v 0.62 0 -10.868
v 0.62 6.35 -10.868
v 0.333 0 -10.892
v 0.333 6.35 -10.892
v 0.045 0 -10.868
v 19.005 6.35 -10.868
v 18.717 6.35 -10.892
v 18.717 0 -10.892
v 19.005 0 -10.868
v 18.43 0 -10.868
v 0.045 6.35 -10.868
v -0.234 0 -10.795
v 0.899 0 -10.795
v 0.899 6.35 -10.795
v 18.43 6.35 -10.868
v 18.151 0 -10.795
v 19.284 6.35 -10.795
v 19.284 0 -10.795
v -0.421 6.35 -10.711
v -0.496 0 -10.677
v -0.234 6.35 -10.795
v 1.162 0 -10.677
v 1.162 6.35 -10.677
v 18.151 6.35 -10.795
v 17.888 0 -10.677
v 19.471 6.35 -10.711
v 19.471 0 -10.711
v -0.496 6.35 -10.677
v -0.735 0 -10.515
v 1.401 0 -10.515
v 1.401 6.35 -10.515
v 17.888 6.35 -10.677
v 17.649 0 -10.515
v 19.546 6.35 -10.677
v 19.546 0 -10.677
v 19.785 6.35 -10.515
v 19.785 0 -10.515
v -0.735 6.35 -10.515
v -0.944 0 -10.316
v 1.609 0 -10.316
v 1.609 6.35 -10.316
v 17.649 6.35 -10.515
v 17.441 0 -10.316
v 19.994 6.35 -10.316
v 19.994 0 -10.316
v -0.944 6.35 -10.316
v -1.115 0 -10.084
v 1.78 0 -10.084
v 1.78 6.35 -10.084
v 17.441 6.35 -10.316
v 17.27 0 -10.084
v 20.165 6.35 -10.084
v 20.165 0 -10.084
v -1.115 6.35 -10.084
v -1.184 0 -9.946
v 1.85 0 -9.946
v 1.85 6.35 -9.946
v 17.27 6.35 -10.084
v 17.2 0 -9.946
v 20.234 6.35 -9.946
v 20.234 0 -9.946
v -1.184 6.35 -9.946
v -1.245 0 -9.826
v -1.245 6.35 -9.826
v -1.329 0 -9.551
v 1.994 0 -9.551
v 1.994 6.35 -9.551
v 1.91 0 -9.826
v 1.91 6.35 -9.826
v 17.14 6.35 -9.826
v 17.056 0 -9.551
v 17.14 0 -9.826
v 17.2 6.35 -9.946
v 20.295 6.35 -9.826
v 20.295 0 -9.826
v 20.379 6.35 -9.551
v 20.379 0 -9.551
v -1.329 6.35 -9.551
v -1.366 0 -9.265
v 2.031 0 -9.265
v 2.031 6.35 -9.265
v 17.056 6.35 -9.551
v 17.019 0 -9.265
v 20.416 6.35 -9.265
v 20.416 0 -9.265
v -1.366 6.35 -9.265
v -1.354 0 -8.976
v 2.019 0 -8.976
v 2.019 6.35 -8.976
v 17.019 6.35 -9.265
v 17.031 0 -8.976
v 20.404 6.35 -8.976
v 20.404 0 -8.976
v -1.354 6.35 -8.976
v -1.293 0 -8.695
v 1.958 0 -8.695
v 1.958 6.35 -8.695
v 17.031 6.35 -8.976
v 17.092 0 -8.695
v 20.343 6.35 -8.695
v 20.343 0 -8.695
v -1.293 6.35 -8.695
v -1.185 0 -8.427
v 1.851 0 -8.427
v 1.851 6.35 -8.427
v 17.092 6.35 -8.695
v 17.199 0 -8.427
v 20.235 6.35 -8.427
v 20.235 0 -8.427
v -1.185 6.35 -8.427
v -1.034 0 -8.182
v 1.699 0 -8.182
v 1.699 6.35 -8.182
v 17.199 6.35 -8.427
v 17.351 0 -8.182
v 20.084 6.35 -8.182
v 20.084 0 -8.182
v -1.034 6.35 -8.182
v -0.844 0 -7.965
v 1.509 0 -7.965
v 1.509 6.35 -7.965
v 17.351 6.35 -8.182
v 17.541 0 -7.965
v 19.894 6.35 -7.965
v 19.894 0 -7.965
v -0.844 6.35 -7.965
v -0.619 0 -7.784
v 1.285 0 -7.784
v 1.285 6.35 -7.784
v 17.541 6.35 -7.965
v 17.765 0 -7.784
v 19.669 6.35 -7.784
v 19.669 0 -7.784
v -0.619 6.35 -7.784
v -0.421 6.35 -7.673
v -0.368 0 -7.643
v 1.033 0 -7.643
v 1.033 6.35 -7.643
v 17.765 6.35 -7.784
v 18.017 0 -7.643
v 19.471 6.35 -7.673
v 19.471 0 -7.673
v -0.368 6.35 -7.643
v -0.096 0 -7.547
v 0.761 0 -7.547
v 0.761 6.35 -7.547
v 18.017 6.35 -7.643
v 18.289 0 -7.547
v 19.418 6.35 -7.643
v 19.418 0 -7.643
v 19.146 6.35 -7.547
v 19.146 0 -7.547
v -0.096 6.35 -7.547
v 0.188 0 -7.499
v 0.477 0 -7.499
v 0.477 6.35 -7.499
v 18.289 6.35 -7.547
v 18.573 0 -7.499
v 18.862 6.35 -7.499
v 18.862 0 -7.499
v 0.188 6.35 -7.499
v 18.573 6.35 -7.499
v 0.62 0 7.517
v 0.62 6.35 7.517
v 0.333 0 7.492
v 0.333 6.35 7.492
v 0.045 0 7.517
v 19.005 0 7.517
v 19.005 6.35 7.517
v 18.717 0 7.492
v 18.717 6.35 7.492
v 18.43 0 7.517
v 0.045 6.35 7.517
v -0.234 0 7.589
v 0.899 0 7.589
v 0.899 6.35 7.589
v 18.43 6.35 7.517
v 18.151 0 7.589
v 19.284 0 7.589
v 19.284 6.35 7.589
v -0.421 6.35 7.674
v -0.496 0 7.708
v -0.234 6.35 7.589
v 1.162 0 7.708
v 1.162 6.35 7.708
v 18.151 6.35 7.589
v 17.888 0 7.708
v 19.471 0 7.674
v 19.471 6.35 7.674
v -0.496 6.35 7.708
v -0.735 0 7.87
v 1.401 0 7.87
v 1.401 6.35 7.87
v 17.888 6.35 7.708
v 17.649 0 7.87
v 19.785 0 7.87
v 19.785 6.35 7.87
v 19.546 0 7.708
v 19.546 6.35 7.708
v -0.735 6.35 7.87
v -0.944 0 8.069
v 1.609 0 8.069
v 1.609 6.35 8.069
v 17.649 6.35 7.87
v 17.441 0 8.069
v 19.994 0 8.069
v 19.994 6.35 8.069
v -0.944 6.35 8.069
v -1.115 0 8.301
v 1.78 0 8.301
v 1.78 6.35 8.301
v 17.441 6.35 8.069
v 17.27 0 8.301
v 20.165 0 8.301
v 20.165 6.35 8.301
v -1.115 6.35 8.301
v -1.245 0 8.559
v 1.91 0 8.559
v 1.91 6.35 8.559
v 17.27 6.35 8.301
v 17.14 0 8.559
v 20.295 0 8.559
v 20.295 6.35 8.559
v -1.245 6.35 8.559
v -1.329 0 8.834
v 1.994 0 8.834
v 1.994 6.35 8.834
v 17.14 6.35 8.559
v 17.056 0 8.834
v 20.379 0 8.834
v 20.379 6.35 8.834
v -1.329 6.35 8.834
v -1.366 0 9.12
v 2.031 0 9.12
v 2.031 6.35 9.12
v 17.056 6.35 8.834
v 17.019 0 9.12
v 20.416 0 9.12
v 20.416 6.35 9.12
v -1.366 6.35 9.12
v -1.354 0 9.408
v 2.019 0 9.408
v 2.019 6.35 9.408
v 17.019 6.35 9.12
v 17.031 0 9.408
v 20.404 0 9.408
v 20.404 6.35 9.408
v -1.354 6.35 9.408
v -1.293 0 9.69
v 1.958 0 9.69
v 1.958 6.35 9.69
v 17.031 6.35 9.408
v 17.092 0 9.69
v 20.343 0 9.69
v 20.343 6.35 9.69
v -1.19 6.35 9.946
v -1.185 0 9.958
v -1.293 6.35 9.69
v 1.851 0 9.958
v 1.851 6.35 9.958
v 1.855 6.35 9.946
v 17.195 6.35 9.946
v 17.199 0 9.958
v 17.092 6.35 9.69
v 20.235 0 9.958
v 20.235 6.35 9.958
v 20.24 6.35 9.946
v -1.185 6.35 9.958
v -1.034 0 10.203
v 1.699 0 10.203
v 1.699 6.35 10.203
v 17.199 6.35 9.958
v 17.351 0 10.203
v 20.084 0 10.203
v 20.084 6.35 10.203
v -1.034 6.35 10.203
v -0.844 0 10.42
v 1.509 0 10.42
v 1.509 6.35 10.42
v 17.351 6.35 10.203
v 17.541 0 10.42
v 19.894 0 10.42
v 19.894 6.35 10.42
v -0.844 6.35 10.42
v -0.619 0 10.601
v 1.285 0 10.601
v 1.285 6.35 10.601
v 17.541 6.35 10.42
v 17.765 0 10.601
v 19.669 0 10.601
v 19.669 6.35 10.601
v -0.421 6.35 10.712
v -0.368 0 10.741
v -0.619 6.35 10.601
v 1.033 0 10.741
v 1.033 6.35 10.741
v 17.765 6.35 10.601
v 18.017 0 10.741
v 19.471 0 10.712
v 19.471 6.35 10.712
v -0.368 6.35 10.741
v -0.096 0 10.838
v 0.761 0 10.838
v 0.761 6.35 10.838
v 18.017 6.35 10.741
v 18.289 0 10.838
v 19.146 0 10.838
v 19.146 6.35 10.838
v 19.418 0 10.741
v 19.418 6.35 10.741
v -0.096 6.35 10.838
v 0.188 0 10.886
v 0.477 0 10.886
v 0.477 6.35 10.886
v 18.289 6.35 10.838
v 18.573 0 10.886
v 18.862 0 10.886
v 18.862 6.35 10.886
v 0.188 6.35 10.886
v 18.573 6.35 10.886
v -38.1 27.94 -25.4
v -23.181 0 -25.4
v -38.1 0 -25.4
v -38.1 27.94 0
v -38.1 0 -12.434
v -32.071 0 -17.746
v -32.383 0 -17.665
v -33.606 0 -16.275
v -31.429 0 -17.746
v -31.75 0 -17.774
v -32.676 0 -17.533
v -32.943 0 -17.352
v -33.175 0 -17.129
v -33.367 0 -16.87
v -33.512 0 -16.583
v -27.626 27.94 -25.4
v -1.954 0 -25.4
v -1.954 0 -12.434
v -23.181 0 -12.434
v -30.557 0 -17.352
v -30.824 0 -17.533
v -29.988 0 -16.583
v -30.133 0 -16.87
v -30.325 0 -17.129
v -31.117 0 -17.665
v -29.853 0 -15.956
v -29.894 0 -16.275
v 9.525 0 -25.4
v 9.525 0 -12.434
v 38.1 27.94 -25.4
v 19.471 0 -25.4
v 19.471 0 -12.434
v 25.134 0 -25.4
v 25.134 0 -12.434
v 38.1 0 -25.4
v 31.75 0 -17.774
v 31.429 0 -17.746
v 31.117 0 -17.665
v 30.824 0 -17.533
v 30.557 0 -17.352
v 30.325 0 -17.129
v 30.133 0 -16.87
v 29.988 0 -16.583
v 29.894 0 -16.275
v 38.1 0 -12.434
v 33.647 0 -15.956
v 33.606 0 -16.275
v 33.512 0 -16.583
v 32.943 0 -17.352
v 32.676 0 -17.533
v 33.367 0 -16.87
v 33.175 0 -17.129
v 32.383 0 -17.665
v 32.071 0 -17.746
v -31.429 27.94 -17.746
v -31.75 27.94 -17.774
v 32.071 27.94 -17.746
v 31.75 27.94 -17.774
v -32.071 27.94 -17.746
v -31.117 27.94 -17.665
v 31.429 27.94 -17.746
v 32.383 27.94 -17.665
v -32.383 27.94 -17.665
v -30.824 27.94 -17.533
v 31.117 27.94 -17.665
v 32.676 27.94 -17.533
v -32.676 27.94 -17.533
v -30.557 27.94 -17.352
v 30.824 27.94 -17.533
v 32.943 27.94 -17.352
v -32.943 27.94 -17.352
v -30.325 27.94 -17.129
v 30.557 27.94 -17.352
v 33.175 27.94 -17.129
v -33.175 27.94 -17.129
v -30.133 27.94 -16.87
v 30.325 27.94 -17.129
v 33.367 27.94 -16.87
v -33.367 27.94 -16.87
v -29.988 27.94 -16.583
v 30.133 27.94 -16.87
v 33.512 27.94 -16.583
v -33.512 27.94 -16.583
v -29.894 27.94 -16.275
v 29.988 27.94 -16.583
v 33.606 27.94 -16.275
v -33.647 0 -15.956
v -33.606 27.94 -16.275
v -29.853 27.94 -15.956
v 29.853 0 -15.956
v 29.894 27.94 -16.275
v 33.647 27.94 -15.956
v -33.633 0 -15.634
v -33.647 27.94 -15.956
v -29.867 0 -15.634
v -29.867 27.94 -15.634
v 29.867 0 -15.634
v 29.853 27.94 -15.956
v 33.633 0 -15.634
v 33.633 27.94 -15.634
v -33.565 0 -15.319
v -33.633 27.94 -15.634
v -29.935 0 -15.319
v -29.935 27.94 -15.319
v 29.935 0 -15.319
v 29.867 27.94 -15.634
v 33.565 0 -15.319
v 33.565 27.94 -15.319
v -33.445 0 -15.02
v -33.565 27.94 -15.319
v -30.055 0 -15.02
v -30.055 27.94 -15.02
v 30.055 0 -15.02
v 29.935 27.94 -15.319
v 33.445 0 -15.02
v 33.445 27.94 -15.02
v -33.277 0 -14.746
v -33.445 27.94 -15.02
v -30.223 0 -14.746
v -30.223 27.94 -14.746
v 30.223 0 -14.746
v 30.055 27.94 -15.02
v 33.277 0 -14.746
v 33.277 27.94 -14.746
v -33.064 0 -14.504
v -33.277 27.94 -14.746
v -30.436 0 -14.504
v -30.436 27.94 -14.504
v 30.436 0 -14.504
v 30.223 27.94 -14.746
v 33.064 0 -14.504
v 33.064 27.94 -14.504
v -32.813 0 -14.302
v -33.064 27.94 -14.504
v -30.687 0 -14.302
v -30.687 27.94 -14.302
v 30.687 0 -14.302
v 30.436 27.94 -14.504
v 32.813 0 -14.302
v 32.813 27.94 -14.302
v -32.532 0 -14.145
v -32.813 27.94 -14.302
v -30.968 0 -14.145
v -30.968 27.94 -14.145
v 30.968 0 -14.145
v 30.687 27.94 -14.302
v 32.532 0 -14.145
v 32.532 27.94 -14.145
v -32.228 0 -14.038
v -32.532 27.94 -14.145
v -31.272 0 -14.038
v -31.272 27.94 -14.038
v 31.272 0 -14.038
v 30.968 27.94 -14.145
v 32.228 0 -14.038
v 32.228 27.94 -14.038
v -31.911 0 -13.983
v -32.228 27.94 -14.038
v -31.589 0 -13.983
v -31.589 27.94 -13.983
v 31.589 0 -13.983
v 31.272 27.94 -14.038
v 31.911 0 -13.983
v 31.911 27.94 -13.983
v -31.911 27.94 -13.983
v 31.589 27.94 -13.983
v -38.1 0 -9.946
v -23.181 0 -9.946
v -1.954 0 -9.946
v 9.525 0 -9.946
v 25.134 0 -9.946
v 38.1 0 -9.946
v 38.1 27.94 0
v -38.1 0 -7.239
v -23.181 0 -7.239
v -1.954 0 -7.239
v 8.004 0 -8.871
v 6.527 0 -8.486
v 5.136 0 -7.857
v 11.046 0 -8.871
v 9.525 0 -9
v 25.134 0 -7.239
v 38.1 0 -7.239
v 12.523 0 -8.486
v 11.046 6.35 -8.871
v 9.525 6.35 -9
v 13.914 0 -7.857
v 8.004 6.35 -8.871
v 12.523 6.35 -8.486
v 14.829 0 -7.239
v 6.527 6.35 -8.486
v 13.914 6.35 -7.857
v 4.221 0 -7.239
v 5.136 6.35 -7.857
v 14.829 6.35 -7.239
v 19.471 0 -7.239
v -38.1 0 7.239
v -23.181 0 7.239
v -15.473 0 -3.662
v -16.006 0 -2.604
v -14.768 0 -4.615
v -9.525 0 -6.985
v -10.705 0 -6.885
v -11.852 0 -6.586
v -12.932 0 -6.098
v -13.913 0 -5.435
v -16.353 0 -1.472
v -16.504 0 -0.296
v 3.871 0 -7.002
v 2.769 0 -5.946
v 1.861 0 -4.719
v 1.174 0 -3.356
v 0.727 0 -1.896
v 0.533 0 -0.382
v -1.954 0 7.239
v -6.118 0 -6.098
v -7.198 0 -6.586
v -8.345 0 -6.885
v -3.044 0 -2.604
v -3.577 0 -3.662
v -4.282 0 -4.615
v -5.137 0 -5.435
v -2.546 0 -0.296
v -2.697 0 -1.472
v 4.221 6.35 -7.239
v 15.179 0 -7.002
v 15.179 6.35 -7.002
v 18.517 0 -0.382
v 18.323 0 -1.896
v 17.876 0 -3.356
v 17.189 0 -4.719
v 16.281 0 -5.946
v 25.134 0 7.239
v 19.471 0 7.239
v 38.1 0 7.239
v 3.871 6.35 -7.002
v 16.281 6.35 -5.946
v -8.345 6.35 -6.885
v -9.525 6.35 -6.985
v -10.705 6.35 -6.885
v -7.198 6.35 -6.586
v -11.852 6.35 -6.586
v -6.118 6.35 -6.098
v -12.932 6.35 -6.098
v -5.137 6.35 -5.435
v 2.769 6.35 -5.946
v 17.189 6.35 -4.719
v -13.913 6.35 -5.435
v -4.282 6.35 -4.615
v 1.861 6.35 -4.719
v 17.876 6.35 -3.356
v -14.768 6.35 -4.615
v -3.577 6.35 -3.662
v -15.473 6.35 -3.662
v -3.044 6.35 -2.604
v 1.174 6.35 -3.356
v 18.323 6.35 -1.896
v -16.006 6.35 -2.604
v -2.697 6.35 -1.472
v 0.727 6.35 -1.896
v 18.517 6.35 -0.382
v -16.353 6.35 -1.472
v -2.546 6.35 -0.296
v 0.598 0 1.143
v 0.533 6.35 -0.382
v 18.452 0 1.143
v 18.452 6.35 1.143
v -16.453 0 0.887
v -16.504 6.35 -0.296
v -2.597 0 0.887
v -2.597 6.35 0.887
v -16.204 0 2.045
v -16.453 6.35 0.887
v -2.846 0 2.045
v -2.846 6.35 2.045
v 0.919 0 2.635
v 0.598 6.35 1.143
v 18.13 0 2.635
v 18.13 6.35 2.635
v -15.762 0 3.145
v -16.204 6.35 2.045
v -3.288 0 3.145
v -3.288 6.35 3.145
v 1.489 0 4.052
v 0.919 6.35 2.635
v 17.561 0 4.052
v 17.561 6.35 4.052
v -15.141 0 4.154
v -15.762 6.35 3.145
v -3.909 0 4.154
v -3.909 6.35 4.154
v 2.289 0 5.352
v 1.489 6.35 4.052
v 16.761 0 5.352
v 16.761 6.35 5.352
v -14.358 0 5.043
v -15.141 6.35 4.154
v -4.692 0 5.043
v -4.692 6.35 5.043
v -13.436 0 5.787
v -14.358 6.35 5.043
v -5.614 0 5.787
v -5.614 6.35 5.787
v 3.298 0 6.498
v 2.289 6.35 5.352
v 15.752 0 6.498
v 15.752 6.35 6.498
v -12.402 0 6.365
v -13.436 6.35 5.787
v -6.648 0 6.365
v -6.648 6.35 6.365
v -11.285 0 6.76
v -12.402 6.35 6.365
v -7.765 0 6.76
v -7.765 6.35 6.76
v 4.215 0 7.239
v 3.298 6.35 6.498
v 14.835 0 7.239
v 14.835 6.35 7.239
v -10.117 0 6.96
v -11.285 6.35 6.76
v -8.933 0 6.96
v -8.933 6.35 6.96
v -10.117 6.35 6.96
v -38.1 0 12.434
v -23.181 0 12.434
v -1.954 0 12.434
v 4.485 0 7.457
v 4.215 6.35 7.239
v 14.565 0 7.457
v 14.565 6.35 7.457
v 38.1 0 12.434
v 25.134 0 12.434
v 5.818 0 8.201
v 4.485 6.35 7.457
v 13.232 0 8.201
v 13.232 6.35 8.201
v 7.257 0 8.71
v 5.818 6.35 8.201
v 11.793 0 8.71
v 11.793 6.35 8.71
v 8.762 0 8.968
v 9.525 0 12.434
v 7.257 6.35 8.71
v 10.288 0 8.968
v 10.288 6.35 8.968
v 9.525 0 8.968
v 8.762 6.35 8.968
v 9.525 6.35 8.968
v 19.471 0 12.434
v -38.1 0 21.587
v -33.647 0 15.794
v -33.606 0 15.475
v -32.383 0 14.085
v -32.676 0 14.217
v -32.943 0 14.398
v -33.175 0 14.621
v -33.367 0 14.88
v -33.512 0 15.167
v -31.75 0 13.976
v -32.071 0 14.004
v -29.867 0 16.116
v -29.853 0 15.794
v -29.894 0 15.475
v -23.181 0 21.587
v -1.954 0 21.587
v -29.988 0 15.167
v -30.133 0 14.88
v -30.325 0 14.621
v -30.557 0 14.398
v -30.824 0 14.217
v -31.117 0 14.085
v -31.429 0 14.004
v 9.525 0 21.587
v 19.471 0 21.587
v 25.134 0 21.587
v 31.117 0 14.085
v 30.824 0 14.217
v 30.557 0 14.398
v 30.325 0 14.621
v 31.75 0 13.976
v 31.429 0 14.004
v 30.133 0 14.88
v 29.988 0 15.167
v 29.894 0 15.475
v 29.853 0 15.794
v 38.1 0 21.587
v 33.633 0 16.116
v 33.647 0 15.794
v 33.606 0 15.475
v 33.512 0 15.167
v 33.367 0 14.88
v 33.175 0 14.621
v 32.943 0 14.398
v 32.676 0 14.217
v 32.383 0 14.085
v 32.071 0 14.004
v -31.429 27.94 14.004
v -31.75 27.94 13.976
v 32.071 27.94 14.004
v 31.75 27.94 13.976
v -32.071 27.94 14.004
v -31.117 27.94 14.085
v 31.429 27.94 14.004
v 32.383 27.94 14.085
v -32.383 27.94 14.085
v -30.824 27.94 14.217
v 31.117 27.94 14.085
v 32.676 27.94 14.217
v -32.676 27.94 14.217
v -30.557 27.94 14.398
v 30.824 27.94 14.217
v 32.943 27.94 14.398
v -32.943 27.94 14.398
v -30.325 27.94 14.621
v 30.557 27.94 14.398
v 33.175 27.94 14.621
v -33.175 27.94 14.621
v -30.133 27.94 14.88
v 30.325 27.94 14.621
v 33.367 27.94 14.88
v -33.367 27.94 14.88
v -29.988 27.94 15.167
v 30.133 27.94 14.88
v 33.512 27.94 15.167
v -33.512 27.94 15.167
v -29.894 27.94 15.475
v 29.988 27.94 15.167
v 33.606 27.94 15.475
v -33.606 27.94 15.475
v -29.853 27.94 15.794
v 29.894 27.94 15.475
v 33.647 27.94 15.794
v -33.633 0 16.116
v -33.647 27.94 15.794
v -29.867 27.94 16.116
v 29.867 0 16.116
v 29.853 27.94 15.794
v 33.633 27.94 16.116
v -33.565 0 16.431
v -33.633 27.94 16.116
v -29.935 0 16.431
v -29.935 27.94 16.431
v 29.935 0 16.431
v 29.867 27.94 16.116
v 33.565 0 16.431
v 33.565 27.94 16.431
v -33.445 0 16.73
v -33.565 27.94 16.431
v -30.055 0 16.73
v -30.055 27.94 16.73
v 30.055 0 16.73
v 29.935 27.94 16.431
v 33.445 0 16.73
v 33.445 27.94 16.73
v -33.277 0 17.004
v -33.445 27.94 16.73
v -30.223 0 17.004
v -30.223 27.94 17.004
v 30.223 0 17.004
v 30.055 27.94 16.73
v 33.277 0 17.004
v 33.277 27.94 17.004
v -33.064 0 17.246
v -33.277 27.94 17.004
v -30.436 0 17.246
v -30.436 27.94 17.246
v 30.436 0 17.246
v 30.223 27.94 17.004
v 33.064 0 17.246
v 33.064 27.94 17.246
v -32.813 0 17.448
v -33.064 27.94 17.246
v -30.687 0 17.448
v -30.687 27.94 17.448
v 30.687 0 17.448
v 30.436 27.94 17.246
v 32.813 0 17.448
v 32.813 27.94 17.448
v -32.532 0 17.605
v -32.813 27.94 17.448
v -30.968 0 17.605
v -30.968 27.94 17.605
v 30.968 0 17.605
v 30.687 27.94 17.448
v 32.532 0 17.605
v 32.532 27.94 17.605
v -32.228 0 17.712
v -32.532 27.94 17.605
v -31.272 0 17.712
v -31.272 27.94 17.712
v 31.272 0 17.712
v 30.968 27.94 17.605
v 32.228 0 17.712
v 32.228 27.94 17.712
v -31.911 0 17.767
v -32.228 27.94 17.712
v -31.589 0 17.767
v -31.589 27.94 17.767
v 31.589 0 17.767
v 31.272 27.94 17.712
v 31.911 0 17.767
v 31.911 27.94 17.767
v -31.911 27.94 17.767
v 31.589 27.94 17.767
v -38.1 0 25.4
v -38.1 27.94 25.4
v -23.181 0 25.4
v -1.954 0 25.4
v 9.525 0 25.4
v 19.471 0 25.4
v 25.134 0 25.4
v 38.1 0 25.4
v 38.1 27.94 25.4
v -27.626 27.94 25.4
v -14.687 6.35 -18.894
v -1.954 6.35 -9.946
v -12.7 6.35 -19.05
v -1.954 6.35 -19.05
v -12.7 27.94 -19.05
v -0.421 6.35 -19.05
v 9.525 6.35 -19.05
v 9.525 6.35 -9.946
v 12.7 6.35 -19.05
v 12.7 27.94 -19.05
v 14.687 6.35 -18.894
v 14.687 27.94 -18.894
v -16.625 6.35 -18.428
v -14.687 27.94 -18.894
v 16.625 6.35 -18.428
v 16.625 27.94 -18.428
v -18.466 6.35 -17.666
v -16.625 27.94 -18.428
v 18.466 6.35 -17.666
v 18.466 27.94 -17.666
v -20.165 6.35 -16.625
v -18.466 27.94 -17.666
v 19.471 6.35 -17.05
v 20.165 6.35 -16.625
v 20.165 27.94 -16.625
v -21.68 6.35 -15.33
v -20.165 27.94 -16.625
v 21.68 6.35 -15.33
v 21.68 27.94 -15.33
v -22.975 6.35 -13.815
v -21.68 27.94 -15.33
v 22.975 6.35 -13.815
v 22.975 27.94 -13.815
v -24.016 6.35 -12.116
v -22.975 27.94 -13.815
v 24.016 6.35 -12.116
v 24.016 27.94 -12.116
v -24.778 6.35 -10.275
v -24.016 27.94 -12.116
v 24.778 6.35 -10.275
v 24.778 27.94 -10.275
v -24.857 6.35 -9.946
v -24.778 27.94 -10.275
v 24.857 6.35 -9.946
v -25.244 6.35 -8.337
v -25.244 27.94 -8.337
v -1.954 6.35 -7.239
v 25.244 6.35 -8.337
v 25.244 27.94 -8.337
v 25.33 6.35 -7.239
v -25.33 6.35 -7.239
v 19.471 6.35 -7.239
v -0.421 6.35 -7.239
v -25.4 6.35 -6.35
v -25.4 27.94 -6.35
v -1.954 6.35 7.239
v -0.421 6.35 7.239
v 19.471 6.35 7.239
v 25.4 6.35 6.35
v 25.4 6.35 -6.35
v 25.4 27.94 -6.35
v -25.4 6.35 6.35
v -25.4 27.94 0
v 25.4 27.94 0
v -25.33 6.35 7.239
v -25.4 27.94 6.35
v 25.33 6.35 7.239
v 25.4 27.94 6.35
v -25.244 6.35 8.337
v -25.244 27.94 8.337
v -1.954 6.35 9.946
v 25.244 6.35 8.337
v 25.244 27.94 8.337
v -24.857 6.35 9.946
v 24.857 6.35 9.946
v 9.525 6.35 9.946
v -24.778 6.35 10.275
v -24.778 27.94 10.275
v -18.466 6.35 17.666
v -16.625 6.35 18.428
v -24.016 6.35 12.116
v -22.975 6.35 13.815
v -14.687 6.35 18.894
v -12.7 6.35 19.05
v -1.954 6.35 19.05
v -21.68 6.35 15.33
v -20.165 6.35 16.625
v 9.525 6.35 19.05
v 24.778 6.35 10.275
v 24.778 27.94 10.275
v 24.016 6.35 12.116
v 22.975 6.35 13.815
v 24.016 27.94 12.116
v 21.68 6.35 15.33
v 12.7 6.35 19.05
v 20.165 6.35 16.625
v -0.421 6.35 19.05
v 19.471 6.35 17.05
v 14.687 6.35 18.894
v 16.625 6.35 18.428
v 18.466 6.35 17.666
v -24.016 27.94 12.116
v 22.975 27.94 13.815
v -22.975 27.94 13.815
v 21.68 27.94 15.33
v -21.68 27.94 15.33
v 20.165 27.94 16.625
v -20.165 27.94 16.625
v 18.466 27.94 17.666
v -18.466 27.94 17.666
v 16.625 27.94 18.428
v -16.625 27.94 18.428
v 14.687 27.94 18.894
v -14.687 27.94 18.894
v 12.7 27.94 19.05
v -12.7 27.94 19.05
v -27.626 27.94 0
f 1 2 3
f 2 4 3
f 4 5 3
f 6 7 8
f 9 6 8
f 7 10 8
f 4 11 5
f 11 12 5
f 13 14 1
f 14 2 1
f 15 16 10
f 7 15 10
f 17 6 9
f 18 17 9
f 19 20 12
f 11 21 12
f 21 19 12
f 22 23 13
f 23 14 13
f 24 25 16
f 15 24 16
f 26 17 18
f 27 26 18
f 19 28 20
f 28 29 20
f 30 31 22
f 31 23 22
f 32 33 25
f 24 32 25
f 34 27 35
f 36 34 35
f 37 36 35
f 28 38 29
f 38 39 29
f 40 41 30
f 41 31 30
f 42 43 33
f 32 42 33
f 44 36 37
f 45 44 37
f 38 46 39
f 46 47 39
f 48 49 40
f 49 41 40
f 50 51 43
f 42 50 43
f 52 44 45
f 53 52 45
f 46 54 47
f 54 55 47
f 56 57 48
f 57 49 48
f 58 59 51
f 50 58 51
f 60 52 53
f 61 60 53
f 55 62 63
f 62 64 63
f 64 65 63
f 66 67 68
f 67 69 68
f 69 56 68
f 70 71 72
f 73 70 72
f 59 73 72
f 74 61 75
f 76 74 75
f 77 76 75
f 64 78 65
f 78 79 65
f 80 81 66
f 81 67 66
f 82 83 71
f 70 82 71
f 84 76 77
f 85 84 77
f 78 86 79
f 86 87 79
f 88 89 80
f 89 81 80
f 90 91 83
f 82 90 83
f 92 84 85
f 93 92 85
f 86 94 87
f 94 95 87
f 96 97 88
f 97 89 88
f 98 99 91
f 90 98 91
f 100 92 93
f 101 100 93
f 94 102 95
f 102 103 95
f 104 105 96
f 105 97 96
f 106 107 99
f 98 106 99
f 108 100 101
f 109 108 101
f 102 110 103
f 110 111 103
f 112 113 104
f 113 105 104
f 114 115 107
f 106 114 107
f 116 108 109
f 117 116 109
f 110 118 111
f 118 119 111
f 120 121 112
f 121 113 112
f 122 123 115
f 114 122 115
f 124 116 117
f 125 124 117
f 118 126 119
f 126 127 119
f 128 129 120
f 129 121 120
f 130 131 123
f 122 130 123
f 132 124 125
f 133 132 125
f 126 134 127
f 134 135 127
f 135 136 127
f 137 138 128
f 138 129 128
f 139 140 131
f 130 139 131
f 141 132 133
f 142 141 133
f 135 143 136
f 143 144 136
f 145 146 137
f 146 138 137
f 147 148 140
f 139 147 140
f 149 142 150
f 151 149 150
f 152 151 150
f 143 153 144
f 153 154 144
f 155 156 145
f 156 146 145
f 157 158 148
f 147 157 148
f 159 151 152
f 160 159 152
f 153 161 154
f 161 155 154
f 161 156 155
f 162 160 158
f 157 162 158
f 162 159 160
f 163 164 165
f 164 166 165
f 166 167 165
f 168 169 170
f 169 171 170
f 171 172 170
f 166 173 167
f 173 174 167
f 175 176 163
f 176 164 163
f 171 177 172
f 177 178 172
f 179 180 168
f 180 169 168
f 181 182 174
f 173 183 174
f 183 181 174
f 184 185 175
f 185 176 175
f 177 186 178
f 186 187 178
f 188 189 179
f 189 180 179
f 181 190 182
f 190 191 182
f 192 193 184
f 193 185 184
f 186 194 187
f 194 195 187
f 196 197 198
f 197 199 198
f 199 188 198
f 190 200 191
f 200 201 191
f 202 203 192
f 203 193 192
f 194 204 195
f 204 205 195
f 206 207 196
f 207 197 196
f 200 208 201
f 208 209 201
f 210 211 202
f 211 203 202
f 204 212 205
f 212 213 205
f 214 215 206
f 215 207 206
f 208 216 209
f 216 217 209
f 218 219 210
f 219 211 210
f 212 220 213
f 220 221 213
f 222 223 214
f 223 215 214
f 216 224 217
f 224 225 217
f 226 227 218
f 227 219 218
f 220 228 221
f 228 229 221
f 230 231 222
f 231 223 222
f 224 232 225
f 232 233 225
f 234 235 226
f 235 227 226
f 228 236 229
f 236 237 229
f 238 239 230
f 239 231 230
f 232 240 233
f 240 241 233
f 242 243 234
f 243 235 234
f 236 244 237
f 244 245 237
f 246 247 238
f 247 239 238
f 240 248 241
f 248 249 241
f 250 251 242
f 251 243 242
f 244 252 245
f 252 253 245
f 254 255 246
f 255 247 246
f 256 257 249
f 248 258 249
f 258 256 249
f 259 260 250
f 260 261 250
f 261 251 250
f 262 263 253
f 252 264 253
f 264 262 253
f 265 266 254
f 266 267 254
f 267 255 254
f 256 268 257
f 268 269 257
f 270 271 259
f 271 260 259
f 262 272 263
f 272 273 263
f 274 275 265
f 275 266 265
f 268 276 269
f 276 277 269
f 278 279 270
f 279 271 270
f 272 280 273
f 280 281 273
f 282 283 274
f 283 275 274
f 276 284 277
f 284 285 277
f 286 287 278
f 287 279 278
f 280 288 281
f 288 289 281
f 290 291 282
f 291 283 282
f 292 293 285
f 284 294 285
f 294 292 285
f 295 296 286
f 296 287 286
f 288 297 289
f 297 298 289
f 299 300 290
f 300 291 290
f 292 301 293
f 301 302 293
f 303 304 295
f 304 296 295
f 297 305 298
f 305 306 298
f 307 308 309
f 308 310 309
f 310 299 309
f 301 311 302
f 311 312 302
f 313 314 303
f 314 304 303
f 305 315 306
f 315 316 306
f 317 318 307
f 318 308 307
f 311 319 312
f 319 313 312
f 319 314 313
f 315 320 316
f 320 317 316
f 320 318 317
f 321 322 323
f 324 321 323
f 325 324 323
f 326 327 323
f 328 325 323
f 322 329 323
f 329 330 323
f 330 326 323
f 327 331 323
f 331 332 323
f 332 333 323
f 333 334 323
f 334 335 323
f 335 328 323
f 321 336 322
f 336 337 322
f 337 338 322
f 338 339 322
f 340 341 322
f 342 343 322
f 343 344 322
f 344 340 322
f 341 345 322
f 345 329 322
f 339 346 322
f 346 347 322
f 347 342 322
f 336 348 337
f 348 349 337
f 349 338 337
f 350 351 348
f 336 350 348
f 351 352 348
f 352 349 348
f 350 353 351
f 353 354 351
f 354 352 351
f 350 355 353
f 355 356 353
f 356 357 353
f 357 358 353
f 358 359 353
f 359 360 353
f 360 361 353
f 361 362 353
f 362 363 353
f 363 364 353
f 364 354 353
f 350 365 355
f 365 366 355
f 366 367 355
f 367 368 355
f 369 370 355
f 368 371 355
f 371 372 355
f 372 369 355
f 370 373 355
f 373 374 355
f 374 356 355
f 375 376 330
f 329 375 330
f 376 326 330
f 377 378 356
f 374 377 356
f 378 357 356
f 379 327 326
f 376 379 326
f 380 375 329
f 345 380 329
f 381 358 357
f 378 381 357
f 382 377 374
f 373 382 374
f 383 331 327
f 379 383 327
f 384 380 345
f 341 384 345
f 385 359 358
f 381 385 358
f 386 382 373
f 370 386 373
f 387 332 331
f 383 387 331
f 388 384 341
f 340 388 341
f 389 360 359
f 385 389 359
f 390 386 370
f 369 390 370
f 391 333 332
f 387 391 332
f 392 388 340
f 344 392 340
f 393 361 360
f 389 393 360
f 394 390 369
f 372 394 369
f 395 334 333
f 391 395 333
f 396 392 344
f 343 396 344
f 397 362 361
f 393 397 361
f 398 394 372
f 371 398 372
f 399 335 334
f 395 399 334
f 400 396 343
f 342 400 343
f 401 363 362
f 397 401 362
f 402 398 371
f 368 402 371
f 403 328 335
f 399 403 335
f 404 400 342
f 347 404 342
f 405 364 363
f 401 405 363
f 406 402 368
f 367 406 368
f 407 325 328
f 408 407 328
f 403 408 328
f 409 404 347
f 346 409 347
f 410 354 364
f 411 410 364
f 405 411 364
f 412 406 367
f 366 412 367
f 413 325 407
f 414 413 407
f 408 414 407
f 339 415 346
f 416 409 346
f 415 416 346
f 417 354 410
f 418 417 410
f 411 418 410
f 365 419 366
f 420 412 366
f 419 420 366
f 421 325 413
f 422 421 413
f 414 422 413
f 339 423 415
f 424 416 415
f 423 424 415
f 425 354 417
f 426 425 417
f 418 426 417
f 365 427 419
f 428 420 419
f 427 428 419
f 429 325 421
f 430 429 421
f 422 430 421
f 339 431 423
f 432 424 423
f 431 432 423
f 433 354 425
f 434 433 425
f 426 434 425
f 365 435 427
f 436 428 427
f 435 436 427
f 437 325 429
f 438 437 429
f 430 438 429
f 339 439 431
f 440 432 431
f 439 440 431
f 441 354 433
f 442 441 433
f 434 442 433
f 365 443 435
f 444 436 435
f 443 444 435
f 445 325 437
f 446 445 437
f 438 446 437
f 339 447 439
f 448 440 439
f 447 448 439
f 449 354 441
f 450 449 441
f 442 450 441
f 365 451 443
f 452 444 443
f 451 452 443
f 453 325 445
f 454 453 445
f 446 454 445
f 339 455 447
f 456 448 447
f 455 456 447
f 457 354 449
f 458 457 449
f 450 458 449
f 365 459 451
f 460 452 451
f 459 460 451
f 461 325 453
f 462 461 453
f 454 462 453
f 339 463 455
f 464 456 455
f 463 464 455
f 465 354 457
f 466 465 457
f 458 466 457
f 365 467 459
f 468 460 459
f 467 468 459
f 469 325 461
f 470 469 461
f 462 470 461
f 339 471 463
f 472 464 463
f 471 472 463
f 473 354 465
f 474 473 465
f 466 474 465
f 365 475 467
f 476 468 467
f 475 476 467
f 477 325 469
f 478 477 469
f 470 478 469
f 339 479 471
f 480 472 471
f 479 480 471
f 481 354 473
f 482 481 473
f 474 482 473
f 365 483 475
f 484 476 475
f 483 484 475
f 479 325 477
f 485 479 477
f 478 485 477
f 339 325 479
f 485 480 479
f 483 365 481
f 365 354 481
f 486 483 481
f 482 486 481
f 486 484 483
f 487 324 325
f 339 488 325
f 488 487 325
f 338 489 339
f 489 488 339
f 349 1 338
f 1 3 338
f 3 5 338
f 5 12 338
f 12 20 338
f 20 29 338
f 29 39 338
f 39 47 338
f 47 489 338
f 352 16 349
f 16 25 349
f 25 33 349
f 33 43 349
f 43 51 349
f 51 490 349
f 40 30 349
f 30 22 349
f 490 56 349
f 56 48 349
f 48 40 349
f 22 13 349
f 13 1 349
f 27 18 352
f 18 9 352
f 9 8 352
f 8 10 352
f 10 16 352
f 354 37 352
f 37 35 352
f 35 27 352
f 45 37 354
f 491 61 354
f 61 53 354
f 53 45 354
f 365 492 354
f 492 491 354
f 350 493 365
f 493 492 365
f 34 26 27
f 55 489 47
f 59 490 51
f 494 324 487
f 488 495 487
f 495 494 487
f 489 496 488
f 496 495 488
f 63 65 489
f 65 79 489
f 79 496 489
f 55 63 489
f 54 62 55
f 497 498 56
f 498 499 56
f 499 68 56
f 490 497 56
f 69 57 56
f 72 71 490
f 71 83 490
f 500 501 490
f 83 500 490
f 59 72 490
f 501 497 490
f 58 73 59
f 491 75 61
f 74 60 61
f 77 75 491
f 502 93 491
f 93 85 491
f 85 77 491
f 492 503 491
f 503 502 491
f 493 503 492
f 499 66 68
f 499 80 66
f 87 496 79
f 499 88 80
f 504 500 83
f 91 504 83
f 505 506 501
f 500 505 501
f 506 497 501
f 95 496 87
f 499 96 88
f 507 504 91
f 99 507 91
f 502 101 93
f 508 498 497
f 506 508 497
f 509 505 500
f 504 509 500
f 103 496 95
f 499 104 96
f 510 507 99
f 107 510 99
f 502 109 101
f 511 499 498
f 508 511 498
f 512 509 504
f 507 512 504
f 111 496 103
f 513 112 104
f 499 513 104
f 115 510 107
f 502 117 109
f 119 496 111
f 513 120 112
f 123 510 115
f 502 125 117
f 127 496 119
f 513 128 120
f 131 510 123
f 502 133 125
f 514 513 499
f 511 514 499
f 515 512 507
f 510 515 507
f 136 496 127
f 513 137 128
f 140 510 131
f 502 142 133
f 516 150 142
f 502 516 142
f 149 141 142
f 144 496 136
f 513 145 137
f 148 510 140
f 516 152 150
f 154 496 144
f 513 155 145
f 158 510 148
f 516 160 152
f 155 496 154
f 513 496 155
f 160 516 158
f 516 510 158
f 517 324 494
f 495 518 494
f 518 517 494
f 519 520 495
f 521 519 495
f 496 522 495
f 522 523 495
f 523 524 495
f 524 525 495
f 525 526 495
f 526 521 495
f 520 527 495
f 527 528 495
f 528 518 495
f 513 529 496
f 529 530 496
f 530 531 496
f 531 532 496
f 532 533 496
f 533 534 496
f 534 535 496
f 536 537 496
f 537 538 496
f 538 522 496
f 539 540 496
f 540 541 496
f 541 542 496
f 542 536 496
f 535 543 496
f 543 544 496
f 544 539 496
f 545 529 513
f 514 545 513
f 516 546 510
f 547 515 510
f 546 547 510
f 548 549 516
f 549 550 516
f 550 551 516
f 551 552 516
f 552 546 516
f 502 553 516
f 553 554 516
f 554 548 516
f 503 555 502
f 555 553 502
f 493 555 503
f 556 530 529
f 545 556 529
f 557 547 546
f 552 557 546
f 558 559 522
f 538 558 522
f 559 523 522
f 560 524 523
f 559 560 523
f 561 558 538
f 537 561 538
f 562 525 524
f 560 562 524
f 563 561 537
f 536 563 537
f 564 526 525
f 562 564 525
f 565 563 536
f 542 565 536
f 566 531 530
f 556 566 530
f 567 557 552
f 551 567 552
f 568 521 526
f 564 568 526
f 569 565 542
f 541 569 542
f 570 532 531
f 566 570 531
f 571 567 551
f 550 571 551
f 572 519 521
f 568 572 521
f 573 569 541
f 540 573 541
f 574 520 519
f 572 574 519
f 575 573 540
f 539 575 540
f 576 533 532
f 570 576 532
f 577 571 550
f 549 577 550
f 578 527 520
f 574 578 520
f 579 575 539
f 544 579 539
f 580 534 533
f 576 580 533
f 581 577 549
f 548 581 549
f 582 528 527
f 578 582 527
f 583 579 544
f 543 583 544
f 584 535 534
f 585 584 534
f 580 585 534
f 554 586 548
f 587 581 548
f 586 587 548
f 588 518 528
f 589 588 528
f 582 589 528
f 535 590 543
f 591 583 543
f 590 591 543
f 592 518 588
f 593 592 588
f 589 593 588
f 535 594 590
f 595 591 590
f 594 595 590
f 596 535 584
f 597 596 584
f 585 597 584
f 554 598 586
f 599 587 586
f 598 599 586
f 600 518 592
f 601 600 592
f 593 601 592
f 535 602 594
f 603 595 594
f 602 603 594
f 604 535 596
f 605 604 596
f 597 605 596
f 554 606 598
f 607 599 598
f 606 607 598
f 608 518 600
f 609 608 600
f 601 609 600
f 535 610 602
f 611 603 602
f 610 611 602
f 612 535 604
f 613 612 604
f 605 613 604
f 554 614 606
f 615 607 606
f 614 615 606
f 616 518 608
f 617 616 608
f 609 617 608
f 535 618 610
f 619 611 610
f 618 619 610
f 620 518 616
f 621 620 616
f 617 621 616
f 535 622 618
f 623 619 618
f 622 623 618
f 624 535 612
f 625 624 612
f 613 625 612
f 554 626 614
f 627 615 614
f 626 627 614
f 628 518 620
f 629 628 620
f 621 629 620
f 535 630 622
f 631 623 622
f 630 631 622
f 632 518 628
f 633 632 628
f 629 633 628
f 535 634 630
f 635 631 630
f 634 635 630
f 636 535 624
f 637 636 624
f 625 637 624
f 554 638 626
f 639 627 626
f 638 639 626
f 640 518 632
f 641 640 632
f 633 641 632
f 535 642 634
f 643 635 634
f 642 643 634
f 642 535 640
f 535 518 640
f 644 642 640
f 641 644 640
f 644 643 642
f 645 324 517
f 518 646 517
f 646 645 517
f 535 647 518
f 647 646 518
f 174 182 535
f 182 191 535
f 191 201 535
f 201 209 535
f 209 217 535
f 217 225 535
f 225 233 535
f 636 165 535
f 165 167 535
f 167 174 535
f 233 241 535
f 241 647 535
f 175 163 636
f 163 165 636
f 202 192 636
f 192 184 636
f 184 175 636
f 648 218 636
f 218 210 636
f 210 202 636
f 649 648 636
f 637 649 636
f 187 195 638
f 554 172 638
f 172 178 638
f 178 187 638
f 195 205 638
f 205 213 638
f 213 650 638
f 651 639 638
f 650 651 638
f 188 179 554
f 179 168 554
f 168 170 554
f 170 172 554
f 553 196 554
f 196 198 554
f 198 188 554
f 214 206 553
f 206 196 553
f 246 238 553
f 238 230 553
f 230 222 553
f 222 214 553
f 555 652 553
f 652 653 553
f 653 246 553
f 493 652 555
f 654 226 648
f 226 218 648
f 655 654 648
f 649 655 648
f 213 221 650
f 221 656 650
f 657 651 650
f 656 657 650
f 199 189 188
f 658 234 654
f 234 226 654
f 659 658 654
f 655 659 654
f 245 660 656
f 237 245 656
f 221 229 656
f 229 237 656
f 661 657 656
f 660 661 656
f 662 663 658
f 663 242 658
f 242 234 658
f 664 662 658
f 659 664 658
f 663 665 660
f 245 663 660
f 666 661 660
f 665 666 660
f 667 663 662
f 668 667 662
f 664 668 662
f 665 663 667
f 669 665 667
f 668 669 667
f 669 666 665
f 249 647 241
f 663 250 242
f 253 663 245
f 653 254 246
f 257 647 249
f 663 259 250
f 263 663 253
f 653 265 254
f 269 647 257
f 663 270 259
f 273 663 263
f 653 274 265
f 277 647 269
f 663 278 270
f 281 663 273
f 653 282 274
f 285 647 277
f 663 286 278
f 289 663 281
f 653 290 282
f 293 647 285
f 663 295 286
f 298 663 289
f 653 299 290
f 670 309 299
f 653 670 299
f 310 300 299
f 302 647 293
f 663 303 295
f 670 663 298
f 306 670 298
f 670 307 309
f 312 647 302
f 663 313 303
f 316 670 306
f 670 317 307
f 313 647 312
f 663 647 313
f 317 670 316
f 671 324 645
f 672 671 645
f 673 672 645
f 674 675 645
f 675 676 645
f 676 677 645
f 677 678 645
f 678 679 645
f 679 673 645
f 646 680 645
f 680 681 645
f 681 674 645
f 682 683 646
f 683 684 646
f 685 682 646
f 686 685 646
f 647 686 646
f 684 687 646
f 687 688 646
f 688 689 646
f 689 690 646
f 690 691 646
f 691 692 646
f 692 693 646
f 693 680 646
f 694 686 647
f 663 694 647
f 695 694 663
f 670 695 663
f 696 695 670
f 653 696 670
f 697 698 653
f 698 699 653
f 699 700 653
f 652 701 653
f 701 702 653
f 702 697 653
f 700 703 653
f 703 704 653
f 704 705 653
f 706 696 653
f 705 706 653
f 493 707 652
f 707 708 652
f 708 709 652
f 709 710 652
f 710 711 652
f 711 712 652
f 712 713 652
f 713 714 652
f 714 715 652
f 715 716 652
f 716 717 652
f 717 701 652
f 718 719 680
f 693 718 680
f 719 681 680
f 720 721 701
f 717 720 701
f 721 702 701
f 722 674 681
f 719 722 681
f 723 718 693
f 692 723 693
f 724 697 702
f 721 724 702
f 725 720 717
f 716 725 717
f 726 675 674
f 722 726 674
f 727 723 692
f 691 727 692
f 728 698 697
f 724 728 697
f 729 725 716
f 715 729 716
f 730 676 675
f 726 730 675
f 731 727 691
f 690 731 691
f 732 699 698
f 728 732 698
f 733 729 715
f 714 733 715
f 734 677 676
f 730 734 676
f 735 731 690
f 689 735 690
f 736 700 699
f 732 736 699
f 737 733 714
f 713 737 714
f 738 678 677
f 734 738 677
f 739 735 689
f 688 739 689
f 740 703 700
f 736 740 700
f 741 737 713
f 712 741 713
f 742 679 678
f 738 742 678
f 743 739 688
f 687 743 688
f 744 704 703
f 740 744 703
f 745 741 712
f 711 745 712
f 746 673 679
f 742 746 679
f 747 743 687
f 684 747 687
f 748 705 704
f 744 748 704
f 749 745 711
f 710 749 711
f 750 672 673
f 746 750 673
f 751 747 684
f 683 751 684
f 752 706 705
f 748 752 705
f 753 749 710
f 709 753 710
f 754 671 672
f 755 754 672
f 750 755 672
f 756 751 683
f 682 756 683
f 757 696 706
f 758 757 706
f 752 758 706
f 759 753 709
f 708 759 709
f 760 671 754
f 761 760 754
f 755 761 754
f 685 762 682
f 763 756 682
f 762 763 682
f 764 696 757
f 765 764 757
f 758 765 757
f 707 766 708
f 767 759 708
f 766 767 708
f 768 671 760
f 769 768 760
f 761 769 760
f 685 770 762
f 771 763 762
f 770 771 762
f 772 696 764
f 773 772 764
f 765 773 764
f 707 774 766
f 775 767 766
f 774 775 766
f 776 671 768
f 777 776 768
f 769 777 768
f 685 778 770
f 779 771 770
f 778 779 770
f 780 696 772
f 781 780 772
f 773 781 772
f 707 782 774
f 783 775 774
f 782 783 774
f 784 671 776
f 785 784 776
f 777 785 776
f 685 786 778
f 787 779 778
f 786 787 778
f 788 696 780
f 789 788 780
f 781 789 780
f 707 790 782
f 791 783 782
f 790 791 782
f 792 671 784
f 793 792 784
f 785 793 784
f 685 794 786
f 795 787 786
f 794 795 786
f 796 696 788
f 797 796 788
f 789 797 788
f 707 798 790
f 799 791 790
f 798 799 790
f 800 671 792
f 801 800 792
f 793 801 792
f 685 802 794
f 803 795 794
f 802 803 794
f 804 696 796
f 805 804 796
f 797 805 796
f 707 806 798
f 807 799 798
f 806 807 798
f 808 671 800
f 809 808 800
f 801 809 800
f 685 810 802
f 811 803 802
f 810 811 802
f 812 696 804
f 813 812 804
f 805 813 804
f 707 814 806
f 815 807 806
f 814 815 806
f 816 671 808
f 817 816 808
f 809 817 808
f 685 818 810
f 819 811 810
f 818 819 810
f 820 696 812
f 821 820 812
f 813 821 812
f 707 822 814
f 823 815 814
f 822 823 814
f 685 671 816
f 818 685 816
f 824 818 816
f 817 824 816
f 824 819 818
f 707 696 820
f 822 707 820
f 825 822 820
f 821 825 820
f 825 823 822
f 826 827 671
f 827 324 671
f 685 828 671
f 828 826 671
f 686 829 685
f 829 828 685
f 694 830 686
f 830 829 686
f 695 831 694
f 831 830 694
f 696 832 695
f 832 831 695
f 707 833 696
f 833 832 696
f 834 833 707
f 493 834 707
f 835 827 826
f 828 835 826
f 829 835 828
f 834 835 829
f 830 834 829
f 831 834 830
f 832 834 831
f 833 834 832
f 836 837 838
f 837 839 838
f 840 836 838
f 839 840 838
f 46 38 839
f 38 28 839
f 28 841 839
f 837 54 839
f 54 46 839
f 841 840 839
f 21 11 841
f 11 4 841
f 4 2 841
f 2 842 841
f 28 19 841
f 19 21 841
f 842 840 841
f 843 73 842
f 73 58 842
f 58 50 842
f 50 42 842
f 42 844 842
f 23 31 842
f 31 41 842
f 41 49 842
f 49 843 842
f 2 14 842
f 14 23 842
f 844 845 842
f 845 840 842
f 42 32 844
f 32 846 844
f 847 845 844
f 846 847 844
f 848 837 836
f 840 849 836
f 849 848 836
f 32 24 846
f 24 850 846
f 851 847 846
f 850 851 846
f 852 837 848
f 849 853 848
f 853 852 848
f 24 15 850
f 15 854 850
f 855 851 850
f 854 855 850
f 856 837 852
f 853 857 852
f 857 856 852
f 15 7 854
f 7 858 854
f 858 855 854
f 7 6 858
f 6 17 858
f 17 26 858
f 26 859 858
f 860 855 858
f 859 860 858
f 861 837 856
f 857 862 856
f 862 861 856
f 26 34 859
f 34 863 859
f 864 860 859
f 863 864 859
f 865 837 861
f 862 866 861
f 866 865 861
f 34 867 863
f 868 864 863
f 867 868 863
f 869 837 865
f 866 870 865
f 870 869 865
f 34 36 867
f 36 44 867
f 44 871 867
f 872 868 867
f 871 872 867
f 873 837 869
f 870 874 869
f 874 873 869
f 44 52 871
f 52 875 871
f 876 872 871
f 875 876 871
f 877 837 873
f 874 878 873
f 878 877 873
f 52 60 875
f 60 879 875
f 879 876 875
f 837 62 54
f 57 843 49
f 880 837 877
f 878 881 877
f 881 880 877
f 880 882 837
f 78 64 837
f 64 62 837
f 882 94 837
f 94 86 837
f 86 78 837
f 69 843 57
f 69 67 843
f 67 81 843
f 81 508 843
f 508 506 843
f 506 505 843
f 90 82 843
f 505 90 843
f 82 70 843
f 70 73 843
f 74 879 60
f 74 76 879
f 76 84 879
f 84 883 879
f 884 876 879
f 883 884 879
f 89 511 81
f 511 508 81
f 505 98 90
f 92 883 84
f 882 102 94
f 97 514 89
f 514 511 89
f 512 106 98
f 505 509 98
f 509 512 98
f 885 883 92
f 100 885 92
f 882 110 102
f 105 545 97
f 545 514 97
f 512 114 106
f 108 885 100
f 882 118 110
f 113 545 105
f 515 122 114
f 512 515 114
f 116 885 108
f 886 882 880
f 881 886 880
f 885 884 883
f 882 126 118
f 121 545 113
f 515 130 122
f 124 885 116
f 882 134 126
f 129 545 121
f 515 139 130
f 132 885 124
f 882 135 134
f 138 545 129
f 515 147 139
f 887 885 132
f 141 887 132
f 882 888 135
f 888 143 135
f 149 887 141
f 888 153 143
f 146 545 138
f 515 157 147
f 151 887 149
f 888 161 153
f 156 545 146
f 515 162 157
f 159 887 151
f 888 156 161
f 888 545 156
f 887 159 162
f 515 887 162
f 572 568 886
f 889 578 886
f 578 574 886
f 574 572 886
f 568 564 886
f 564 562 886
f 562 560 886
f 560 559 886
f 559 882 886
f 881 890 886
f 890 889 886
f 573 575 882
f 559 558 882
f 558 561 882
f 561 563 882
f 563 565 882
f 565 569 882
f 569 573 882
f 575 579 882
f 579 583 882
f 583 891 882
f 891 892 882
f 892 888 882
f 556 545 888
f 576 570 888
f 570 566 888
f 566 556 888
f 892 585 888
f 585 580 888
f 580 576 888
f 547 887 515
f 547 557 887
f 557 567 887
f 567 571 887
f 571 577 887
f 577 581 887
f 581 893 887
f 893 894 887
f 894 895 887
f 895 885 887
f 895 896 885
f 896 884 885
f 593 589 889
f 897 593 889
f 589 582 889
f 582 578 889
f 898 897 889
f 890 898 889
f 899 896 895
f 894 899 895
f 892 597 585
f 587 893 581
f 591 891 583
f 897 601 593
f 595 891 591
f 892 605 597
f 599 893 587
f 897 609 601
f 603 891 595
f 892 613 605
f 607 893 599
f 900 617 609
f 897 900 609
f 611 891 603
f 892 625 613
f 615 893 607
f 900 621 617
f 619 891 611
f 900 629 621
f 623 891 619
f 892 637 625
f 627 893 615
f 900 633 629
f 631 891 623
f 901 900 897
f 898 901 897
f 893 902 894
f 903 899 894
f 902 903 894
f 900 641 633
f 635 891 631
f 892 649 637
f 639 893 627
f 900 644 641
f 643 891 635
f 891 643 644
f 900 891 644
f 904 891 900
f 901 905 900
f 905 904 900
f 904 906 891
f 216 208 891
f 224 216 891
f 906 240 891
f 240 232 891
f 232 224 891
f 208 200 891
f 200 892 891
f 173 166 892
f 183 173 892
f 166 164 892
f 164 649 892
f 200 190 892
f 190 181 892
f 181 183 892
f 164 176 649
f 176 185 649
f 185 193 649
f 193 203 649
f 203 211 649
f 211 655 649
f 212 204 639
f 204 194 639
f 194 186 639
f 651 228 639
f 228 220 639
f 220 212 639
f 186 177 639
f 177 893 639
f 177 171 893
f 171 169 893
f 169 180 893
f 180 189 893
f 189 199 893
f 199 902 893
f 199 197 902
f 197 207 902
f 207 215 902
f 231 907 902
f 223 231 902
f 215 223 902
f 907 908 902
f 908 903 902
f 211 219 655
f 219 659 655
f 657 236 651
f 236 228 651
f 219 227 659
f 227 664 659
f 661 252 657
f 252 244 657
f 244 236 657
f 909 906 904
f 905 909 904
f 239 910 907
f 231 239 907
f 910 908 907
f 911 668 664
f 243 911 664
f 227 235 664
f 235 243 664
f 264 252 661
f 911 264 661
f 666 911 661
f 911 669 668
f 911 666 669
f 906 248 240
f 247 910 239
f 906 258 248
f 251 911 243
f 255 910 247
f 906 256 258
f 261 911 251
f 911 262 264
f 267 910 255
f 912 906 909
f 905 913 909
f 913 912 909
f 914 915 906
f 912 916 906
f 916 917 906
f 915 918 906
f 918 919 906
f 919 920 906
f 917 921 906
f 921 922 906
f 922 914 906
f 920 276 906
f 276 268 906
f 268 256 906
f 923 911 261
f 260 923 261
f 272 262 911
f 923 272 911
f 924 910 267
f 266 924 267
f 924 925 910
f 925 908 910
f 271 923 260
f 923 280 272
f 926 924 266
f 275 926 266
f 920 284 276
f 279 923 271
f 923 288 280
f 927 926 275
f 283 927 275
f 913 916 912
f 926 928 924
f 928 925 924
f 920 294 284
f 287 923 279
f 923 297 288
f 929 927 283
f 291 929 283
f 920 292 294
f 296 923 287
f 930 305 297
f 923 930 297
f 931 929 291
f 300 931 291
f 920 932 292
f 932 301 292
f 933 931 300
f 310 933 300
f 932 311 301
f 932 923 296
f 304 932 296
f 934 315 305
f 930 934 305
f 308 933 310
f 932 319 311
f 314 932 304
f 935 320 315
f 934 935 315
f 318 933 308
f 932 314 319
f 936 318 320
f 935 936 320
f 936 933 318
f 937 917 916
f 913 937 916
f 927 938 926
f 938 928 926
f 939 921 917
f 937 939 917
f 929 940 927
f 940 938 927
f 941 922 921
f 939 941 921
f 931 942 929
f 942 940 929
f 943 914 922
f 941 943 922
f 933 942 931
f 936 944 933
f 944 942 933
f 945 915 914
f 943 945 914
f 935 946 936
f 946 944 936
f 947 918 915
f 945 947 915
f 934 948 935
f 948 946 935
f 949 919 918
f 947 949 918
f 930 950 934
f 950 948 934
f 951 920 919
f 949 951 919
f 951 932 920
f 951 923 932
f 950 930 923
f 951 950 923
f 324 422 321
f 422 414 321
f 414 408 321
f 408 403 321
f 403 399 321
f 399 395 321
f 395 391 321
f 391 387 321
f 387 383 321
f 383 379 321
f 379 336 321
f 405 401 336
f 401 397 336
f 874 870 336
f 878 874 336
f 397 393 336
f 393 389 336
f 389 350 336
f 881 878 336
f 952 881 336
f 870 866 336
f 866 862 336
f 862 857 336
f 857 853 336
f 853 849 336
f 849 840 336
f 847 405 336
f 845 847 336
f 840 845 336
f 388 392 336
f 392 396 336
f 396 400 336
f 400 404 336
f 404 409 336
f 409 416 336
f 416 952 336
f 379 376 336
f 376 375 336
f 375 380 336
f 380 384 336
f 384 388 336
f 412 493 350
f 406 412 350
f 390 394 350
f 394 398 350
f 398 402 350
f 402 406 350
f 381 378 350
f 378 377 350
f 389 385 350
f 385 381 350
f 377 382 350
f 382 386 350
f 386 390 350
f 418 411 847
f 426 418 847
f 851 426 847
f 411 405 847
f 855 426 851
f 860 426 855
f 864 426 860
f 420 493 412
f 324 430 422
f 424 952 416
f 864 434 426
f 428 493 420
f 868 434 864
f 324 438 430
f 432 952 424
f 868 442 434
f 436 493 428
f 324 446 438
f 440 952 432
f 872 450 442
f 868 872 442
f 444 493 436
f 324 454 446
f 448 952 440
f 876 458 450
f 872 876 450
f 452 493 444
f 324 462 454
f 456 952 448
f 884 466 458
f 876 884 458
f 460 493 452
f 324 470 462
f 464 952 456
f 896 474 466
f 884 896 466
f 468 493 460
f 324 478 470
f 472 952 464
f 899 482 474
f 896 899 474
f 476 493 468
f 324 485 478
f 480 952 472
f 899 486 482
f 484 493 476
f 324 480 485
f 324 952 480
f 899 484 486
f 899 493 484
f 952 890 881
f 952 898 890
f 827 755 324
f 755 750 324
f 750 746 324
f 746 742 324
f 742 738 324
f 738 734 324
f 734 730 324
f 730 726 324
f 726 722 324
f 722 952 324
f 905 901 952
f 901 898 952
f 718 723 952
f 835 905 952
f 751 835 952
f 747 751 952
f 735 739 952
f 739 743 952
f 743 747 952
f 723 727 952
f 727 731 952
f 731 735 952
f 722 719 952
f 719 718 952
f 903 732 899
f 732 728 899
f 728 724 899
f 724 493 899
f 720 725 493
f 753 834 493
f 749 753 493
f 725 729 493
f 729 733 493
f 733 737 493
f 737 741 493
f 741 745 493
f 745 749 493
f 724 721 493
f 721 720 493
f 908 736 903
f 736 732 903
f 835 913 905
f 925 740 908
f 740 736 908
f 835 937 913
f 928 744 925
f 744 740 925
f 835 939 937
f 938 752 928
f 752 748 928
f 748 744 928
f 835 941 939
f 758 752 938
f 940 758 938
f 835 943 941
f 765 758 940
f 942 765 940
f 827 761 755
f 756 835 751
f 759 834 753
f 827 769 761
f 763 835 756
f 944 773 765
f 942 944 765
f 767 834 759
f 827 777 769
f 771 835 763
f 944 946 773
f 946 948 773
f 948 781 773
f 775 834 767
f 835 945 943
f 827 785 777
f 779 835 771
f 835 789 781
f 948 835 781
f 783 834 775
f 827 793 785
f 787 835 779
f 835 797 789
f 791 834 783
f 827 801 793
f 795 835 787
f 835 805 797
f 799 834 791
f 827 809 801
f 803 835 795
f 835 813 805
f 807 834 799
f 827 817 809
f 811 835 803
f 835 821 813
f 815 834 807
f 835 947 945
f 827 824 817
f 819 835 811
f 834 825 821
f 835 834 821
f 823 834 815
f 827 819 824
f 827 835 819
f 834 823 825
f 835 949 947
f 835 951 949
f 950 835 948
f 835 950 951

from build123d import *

# Parameters (mm, degrees)
SKETCH1_W             = 76.2
SKETCH1_H             = 50.8
BOSS_EXTRUDE1_DEPTH   = 27.94
SKETCH2_R             = 6.985
SKETCH2_R_2           = 9
CUT_EXTRUDE1_DEPTH    = 28.94
CUT_EXTRUDE2_DEPTH    = 21.59
M3_CLEARANCE_HOLE1_D  = 3.4
F_6_CLEARANCE_HOLE1_D = 3.7973


with BuildPart() as part:
    # Sketch1 → Boss-Extrude1 (new body)
    with BuildSketch(Plane(origin=(0, 0, 0), x_dir=(1, 0, 0), z_dir=(0, 1, 0))):
        Rectangle(SKETCH1_W, SKETCH1_H)
    extrude(amount=BOSS_EXTRUDE1_DEPTH)

    # Sketch2 → Cut-Extrude1 (cut, through all)
    with BuildSketch(Plane.XZ):
        with Locations((-9.525, 0)):
            Circle(SKETCH2_R)
        with Locations((9.525, 0)):
            Circle(SKETCH2_R_2)
    extrude(amount=-CUT_EXTRUDE1_DEPTH, mode=Mode.SUBTRACT)

    # Sketch3 → Cut-Extrude2 (cut)
    with BuildSketch(Plane(origin=(0, 27.94, 0), x_dir=(1, 0, 0), z_dir=(0, 1, 0))):
        with BuildLine():
            Line((-12.7, -19.05), (12.7, -19.05))
            ThreePointArc((12.7, -19.05), (21.680256121, -15.330256121), (25.4, -6.35))
            Line((25.4, -6.35), (25.4, 6.35))
            ThreePointArc((25.4, 6.35), (21.680256121, 15.330256121), (12.7, 19.05))
            Line((12.7, 19.05), (-12.7, 19.05))
            ThreePointArc((-12.7, 19.05), (-21.680256121, 15.330256121), (-25.4, 6.35))
            Line((-25.4, 6.35), (-25.4, -6.35))
            ThreePointArc((-25.4, -6.35), (-21.680256121, -15.330256121), (-12.7, -19.05))
        make_face()
    extrude(amount=-CUT_EXTRUDE2_DEPTH, mode=Mode.SUBTRACT)

    # M3 Clearance Hole1 (through all)
    with Locations(Plane(origin=(0.332611845, 0, 9.192388155), x_dir=(0, 0, -1), z_dir=(0, -1, 0))):
        with Locations((0, 0), (18.38477631, 0), (0, 18.38477631), (18.38477631, 18.38477631)):
            Hole(M3_CLEARANCE_HOLE1_D / 2)

    # #6 Clearance Hole1 (through all)
    with Locations(Plane(origin=(-31.75, 0, 15.875), x_dir=(0, 0, -1), z_dir=(0, -1, 0))):
        with Locations((0, 0), (31.75, 0), (0, 63.5), (31.75, 63.5)):
            Hole(F_6_CLEARANCE_HOLE1_D / 2)


solid = part.part
